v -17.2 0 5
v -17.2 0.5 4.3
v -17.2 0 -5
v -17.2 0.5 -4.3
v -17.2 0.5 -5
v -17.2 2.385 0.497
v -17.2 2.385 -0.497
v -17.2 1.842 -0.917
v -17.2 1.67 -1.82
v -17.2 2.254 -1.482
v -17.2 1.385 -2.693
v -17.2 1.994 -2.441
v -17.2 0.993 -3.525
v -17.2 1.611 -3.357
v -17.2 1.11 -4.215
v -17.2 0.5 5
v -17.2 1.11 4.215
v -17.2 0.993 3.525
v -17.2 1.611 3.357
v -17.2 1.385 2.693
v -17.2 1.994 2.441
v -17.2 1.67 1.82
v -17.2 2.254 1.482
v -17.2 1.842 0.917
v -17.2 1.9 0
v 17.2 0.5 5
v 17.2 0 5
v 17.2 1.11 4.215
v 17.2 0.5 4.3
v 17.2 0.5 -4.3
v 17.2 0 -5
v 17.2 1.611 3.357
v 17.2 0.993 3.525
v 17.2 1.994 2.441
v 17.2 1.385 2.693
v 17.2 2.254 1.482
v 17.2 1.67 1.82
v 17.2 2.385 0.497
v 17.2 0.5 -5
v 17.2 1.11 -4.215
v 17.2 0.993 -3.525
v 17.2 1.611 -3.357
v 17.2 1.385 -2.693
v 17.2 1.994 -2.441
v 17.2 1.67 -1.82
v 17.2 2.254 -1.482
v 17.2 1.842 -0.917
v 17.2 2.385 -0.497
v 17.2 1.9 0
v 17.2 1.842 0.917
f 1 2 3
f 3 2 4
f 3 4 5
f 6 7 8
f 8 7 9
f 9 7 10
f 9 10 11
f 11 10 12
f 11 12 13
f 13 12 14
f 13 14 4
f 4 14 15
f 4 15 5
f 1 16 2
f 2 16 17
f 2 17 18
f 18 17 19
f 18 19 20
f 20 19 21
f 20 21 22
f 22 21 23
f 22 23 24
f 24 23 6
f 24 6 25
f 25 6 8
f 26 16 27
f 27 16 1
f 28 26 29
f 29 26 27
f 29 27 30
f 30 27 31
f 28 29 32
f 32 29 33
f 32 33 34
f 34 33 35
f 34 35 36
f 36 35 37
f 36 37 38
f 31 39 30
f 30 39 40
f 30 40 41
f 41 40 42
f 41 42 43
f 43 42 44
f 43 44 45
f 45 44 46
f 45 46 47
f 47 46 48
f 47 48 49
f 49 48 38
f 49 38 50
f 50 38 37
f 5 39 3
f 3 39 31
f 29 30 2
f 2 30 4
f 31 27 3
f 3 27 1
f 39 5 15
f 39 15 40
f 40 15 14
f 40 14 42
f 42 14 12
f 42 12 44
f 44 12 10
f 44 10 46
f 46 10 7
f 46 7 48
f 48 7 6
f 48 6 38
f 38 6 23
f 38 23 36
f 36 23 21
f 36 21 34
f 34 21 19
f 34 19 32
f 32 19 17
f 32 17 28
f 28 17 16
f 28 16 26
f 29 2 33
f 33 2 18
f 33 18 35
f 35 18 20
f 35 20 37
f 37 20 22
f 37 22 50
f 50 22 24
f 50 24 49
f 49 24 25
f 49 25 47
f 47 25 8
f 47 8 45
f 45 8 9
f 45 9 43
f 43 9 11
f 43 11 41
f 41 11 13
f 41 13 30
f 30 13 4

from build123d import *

# Parameters (mm, degrees)
SKETCH_1_W      = 34.4
SKETCH_1_H      = 10
EXTRUDE_1_DEPTH = 0.5
EXTRUDE_2_DEPTH = 34.4


with BuildPart() as part:
    # Эскиз1 → Бобышка-Вытянуть1 (new body)
    with BuildSketch(Plane(origin=(0, 0, 0), x_dir=(1, 0, 0), z_dir=(0, 1, 0))):
        Rectangle(SKETCH_1_W, SKETCH_1_H)
    extrude(amount=EXTRUDE_1_DEPTH)

    # Эскиз2 → Бобышка-Вытянуть2 (add, through all)
    with BuildSketch(Plane.ZY.offset(17.2)):
        with BuildLine():
            ThreePointArc((5, 0.5), (0, 2.400988005), (-5, 0.5))
            Line((-5, 0.5), (-4.3, 0.5))
            ThreePointArc((-4.3, 0.5), (0, 1.9), (4.3, 0.5))
            Line((4.3, 0.5), (5, 0.5))
        make_face()
    extrude(amount=-EXTRUDE_2_DEPTH)


solid = part.part
